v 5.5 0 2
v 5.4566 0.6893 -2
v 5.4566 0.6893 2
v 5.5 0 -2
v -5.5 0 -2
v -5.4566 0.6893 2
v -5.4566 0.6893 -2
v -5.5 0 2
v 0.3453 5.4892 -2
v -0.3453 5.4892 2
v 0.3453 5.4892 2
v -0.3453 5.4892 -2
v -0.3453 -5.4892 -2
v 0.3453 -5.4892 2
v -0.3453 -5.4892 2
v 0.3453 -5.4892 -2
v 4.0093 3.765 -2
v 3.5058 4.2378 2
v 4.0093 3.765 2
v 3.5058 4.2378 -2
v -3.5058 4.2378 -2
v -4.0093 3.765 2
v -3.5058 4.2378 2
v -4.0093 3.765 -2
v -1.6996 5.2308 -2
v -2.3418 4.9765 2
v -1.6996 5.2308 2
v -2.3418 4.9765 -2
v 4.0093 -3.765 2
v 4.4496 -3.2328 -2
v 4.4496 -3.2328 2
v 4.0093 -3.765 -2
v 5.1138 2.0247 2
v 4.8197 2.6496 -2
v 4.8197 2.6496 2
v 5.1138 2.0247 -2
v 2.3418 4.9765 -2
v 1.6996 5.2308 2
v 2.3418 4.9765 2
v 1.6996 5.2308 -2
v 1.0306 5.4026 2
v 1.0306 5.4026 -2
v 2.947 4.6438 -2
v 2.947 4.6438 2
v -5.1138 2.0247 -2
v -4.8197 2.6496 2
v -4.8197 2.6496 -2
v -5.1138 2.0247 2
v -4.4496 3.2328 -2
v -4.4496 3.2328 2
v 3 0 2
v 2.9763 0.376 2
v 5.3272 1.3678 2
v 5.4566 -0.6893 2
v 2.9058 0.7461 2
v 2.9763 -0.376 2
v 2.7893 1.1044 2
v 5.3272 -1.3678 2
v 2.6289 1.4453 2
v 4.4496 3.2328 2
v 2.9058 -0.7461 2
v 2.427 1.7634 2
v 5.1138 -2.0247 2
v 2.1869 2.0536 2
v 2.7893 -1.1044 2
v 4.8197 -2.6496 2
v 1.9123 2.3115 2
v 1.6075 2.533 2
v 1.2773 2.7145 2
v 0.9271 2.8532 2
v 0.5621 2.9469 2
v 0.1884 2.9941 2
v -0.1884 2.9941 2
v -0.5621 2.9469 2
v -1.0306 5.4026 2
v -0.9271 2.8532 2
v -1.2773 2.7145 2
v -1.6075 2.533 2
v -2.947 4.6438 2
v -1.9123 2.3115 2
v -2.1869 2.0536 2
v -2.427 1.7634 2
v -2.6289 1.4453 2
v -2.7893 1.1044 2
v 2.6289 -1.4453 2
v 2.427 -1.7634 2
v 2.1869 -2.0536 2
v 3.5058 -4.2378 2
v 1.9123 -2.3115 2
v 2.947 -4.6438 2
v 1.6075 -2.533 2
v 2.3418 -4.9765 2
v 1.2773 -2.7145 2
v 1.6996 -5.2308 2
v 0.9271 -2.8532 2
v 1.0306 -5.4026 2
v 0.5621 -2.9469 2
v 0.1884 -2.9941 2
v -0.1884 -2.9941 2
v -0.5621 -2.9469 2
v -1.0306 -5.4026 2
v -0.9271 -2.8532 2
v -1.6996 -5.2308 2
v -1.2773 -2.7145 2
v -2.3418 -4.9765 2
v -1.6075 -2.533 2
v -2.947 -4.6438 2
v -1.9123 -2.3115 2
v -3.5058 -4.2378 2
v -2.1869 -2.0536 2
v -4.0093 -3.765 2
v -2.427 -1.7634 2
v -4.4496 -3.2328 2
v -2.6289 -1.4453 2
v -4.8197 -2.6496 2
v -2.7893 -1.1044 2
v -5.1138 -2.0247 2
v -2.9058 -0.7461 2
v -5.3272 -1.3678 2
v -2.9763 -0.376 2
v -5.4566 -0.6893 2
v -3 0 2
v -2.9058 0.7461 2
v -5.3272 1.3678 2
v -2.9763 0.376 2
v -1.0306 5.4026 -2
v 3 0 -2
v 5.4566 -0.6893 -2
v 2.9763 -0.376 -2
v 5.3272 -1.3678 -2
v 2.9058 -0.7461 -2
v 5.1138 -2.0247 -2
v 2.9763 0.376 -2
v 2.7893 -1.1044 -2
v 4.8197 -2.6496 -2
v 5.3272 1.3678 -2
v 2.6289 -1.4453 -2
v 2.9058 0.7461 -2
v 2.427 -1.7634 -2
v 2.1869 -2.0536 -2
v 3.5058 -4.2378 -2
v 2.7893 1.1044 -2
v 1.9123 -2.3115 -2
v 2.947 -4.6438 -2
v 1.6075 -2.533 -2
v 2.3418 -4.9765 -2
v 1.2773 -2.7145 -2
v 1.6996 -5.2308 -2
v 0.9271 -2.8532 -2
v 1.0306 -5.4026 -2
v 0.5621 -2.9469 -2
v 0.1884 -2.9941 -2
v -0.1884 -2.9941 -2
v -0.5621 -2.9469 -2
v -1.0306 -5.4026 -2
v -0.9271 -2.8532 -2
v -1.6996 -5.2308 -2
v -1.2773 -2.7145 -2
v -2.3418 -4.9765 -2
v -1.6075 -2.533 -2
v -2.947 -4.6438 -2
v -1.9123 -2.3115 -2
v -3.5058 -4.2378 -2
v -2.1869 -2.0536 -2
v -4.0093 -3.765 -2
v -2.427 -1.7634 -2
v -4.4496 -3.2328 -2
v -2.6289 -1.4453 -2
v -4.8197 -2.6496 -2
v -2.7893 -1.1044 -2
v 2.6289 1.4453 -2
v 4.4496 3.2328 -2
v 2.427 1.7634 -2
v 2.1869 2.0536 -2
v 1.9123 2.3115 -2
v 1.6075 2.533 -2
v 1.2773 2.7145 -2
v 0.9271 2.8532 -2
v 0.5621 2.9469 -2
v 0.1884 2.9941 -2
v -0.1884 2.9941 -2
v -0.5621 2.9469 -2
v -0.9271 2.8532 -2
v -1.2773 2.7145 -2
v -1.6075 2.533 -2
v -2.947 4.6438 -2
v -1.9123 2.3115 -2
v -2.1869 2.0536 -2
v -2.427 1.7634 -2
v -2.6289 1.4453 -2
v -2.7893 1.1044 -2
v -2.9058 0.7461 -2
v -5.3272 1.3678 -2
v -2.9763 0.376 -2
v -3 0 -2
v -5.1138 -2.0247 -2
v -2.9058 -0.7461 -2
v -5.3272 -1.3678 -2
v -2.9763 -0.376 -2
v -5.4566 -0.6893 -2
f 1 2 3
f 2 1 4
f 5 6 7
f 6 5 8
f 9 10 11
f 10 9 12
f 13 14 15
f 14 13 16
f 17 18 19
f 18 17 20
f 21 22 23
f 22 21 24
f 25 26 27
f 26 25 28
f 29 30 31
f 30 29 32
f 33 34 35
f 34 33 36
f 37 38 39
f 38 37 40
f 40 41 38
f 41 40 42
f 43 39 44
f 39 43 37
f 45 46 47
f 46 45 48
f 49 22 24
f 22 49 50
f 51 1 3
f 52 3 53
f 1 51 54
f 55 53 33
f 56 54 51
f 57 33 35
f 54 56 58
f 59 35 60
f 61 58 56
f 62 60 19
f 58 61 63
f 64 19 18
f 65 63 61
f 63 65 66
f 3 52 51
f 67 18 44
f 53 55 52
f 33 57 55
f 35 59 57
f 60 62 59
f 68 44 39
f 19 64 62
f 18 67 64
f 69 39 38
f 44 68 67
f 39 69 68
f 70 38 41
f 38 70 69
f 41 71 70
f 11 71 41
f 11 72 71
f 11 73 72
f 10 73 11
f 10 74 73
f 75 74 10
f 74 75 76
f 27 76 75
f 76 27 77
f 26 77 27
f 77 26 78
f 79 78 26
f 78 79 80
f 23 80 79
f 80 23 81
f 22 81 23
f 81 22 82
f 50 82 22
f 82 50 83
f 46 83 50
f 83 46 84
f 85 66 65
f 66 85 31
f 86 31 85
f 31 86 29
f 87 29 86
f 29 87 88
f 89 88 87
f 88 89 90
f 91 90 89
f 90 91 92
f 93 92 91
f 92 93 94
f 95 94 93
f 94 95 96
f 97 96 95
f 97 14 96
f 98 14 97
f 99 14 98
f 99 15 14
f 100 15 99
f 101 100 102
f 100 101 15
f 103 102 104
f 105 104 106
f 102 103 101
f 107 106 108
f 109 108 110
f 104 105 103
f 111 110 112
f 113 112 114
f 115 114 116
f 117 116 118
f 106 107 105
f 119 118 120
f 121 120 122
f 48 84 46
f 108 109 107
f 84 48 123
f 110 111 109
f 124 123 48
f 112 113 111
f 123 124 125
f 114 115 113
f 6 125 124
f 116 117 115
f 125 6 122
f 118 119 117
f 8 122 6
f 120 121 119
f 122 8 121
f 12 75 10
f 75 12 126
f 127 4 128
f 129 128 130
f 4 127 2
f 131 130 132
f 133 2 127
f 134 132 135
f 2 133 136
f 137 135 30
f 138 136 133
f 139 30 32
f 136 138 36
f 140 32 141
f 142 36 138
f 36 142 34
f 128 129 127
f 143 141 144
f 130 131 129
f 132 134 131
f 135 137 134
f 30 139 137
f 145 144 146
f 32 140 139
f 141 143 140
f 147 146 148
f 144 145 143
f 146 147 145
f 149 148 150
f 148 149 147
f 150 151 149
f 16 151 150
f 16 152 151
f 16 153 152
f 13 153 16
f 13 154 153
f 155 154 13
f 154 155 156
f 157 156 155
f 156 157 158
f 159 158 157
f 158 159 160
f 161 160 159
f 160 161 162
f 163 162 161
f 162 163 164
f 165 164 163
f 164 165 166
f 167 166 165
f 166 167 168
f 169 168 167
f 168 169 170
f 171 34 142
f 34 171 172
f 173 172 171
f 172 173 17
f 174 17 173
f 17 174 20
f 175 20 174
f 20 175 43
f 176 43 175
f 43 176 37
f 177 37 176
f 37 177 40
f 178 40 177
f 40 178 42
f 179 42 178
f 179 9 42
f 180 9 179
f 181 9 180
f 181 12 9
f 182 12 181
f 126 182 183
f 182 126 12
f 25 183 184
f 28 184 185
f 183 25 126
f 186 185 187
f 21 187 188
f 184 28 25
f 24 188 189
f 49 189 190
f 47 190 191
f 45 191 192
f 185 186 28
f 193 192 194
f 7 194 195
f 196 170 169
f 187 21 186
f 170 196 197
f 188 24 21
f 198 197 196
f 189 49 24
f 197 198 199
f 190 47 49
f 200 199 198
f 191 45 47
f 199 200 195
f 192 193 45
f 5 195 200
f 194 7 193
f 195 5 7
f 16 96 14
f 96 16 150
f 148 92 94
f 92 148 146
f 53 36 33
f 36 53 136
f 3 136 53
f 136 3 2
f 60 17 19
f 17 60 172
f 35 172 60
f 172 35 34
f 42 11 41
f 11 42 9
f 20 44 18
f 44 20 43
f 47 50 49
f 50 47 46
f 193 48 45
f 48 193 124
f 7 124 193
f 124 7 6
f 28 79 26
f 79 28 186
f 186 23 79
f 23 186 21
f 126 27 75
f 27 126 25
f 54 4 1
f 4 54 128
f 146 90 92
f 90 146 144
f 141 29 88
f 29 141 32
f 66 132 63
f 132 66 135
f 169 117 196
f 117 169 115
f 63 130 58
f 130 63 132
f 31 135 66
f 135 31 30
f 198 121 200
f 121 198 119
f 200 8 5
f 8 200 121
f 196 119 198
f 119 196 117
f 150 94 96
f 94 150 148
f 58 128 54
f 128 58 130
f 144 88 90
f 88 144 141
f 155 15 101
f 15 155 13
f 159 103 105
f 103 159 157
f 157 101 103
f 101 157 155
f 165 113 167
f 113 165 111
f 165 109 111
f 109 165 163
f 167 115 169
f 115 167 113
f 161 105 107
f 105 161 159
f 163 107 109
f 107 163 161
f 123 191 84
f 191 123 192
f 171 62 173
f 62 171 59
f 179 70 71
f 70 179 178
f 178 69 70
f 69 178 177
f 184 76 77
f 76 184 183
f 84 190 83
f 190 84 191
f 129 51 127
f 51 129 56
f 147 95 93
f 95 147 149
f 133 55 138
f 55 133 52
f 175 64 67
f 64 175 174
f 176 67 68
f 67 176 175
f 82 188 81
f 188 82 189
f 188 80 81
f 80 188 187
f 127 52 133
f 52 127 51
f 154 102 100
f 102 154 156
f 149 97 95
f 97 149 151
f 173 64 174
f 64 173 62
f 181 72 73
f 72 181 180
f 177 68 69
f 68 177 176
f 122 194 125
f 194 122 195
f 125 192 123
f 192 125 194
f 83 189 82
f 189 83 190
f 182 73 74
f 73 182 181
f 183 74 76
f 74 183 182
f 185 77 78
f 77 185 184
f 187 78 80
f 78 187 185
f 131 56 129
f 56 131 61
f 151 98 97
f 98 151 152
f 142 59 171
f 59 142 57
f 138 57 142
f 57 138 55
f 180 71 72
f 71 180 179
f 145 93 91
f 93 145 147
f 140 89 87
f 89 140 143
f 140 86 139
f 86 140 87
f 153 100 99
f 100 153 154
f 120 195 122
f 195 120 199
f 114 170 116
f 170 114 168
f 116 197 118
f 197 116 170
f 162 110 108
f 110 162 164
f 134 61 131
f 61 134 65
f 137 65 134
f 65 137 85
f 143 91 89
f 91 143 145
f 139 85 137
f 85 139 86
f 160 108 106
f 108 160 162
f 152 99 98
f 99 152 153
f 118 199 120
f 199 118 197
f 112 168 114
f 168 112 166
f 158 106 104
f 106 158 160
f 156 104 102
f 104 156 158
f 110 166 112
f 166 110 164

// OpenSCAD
$fn = 50;


difference() {
	union() {
		translate(v = [0, 0, -2.0000000000]) {
			cylinder(h = 4, r = 5.5000000000);
		}
	}
	union() {
		translate(v = [0, 0, -100.0000000000]) {
			cylinder(h = 200, r = 3);
		}
	}
}
